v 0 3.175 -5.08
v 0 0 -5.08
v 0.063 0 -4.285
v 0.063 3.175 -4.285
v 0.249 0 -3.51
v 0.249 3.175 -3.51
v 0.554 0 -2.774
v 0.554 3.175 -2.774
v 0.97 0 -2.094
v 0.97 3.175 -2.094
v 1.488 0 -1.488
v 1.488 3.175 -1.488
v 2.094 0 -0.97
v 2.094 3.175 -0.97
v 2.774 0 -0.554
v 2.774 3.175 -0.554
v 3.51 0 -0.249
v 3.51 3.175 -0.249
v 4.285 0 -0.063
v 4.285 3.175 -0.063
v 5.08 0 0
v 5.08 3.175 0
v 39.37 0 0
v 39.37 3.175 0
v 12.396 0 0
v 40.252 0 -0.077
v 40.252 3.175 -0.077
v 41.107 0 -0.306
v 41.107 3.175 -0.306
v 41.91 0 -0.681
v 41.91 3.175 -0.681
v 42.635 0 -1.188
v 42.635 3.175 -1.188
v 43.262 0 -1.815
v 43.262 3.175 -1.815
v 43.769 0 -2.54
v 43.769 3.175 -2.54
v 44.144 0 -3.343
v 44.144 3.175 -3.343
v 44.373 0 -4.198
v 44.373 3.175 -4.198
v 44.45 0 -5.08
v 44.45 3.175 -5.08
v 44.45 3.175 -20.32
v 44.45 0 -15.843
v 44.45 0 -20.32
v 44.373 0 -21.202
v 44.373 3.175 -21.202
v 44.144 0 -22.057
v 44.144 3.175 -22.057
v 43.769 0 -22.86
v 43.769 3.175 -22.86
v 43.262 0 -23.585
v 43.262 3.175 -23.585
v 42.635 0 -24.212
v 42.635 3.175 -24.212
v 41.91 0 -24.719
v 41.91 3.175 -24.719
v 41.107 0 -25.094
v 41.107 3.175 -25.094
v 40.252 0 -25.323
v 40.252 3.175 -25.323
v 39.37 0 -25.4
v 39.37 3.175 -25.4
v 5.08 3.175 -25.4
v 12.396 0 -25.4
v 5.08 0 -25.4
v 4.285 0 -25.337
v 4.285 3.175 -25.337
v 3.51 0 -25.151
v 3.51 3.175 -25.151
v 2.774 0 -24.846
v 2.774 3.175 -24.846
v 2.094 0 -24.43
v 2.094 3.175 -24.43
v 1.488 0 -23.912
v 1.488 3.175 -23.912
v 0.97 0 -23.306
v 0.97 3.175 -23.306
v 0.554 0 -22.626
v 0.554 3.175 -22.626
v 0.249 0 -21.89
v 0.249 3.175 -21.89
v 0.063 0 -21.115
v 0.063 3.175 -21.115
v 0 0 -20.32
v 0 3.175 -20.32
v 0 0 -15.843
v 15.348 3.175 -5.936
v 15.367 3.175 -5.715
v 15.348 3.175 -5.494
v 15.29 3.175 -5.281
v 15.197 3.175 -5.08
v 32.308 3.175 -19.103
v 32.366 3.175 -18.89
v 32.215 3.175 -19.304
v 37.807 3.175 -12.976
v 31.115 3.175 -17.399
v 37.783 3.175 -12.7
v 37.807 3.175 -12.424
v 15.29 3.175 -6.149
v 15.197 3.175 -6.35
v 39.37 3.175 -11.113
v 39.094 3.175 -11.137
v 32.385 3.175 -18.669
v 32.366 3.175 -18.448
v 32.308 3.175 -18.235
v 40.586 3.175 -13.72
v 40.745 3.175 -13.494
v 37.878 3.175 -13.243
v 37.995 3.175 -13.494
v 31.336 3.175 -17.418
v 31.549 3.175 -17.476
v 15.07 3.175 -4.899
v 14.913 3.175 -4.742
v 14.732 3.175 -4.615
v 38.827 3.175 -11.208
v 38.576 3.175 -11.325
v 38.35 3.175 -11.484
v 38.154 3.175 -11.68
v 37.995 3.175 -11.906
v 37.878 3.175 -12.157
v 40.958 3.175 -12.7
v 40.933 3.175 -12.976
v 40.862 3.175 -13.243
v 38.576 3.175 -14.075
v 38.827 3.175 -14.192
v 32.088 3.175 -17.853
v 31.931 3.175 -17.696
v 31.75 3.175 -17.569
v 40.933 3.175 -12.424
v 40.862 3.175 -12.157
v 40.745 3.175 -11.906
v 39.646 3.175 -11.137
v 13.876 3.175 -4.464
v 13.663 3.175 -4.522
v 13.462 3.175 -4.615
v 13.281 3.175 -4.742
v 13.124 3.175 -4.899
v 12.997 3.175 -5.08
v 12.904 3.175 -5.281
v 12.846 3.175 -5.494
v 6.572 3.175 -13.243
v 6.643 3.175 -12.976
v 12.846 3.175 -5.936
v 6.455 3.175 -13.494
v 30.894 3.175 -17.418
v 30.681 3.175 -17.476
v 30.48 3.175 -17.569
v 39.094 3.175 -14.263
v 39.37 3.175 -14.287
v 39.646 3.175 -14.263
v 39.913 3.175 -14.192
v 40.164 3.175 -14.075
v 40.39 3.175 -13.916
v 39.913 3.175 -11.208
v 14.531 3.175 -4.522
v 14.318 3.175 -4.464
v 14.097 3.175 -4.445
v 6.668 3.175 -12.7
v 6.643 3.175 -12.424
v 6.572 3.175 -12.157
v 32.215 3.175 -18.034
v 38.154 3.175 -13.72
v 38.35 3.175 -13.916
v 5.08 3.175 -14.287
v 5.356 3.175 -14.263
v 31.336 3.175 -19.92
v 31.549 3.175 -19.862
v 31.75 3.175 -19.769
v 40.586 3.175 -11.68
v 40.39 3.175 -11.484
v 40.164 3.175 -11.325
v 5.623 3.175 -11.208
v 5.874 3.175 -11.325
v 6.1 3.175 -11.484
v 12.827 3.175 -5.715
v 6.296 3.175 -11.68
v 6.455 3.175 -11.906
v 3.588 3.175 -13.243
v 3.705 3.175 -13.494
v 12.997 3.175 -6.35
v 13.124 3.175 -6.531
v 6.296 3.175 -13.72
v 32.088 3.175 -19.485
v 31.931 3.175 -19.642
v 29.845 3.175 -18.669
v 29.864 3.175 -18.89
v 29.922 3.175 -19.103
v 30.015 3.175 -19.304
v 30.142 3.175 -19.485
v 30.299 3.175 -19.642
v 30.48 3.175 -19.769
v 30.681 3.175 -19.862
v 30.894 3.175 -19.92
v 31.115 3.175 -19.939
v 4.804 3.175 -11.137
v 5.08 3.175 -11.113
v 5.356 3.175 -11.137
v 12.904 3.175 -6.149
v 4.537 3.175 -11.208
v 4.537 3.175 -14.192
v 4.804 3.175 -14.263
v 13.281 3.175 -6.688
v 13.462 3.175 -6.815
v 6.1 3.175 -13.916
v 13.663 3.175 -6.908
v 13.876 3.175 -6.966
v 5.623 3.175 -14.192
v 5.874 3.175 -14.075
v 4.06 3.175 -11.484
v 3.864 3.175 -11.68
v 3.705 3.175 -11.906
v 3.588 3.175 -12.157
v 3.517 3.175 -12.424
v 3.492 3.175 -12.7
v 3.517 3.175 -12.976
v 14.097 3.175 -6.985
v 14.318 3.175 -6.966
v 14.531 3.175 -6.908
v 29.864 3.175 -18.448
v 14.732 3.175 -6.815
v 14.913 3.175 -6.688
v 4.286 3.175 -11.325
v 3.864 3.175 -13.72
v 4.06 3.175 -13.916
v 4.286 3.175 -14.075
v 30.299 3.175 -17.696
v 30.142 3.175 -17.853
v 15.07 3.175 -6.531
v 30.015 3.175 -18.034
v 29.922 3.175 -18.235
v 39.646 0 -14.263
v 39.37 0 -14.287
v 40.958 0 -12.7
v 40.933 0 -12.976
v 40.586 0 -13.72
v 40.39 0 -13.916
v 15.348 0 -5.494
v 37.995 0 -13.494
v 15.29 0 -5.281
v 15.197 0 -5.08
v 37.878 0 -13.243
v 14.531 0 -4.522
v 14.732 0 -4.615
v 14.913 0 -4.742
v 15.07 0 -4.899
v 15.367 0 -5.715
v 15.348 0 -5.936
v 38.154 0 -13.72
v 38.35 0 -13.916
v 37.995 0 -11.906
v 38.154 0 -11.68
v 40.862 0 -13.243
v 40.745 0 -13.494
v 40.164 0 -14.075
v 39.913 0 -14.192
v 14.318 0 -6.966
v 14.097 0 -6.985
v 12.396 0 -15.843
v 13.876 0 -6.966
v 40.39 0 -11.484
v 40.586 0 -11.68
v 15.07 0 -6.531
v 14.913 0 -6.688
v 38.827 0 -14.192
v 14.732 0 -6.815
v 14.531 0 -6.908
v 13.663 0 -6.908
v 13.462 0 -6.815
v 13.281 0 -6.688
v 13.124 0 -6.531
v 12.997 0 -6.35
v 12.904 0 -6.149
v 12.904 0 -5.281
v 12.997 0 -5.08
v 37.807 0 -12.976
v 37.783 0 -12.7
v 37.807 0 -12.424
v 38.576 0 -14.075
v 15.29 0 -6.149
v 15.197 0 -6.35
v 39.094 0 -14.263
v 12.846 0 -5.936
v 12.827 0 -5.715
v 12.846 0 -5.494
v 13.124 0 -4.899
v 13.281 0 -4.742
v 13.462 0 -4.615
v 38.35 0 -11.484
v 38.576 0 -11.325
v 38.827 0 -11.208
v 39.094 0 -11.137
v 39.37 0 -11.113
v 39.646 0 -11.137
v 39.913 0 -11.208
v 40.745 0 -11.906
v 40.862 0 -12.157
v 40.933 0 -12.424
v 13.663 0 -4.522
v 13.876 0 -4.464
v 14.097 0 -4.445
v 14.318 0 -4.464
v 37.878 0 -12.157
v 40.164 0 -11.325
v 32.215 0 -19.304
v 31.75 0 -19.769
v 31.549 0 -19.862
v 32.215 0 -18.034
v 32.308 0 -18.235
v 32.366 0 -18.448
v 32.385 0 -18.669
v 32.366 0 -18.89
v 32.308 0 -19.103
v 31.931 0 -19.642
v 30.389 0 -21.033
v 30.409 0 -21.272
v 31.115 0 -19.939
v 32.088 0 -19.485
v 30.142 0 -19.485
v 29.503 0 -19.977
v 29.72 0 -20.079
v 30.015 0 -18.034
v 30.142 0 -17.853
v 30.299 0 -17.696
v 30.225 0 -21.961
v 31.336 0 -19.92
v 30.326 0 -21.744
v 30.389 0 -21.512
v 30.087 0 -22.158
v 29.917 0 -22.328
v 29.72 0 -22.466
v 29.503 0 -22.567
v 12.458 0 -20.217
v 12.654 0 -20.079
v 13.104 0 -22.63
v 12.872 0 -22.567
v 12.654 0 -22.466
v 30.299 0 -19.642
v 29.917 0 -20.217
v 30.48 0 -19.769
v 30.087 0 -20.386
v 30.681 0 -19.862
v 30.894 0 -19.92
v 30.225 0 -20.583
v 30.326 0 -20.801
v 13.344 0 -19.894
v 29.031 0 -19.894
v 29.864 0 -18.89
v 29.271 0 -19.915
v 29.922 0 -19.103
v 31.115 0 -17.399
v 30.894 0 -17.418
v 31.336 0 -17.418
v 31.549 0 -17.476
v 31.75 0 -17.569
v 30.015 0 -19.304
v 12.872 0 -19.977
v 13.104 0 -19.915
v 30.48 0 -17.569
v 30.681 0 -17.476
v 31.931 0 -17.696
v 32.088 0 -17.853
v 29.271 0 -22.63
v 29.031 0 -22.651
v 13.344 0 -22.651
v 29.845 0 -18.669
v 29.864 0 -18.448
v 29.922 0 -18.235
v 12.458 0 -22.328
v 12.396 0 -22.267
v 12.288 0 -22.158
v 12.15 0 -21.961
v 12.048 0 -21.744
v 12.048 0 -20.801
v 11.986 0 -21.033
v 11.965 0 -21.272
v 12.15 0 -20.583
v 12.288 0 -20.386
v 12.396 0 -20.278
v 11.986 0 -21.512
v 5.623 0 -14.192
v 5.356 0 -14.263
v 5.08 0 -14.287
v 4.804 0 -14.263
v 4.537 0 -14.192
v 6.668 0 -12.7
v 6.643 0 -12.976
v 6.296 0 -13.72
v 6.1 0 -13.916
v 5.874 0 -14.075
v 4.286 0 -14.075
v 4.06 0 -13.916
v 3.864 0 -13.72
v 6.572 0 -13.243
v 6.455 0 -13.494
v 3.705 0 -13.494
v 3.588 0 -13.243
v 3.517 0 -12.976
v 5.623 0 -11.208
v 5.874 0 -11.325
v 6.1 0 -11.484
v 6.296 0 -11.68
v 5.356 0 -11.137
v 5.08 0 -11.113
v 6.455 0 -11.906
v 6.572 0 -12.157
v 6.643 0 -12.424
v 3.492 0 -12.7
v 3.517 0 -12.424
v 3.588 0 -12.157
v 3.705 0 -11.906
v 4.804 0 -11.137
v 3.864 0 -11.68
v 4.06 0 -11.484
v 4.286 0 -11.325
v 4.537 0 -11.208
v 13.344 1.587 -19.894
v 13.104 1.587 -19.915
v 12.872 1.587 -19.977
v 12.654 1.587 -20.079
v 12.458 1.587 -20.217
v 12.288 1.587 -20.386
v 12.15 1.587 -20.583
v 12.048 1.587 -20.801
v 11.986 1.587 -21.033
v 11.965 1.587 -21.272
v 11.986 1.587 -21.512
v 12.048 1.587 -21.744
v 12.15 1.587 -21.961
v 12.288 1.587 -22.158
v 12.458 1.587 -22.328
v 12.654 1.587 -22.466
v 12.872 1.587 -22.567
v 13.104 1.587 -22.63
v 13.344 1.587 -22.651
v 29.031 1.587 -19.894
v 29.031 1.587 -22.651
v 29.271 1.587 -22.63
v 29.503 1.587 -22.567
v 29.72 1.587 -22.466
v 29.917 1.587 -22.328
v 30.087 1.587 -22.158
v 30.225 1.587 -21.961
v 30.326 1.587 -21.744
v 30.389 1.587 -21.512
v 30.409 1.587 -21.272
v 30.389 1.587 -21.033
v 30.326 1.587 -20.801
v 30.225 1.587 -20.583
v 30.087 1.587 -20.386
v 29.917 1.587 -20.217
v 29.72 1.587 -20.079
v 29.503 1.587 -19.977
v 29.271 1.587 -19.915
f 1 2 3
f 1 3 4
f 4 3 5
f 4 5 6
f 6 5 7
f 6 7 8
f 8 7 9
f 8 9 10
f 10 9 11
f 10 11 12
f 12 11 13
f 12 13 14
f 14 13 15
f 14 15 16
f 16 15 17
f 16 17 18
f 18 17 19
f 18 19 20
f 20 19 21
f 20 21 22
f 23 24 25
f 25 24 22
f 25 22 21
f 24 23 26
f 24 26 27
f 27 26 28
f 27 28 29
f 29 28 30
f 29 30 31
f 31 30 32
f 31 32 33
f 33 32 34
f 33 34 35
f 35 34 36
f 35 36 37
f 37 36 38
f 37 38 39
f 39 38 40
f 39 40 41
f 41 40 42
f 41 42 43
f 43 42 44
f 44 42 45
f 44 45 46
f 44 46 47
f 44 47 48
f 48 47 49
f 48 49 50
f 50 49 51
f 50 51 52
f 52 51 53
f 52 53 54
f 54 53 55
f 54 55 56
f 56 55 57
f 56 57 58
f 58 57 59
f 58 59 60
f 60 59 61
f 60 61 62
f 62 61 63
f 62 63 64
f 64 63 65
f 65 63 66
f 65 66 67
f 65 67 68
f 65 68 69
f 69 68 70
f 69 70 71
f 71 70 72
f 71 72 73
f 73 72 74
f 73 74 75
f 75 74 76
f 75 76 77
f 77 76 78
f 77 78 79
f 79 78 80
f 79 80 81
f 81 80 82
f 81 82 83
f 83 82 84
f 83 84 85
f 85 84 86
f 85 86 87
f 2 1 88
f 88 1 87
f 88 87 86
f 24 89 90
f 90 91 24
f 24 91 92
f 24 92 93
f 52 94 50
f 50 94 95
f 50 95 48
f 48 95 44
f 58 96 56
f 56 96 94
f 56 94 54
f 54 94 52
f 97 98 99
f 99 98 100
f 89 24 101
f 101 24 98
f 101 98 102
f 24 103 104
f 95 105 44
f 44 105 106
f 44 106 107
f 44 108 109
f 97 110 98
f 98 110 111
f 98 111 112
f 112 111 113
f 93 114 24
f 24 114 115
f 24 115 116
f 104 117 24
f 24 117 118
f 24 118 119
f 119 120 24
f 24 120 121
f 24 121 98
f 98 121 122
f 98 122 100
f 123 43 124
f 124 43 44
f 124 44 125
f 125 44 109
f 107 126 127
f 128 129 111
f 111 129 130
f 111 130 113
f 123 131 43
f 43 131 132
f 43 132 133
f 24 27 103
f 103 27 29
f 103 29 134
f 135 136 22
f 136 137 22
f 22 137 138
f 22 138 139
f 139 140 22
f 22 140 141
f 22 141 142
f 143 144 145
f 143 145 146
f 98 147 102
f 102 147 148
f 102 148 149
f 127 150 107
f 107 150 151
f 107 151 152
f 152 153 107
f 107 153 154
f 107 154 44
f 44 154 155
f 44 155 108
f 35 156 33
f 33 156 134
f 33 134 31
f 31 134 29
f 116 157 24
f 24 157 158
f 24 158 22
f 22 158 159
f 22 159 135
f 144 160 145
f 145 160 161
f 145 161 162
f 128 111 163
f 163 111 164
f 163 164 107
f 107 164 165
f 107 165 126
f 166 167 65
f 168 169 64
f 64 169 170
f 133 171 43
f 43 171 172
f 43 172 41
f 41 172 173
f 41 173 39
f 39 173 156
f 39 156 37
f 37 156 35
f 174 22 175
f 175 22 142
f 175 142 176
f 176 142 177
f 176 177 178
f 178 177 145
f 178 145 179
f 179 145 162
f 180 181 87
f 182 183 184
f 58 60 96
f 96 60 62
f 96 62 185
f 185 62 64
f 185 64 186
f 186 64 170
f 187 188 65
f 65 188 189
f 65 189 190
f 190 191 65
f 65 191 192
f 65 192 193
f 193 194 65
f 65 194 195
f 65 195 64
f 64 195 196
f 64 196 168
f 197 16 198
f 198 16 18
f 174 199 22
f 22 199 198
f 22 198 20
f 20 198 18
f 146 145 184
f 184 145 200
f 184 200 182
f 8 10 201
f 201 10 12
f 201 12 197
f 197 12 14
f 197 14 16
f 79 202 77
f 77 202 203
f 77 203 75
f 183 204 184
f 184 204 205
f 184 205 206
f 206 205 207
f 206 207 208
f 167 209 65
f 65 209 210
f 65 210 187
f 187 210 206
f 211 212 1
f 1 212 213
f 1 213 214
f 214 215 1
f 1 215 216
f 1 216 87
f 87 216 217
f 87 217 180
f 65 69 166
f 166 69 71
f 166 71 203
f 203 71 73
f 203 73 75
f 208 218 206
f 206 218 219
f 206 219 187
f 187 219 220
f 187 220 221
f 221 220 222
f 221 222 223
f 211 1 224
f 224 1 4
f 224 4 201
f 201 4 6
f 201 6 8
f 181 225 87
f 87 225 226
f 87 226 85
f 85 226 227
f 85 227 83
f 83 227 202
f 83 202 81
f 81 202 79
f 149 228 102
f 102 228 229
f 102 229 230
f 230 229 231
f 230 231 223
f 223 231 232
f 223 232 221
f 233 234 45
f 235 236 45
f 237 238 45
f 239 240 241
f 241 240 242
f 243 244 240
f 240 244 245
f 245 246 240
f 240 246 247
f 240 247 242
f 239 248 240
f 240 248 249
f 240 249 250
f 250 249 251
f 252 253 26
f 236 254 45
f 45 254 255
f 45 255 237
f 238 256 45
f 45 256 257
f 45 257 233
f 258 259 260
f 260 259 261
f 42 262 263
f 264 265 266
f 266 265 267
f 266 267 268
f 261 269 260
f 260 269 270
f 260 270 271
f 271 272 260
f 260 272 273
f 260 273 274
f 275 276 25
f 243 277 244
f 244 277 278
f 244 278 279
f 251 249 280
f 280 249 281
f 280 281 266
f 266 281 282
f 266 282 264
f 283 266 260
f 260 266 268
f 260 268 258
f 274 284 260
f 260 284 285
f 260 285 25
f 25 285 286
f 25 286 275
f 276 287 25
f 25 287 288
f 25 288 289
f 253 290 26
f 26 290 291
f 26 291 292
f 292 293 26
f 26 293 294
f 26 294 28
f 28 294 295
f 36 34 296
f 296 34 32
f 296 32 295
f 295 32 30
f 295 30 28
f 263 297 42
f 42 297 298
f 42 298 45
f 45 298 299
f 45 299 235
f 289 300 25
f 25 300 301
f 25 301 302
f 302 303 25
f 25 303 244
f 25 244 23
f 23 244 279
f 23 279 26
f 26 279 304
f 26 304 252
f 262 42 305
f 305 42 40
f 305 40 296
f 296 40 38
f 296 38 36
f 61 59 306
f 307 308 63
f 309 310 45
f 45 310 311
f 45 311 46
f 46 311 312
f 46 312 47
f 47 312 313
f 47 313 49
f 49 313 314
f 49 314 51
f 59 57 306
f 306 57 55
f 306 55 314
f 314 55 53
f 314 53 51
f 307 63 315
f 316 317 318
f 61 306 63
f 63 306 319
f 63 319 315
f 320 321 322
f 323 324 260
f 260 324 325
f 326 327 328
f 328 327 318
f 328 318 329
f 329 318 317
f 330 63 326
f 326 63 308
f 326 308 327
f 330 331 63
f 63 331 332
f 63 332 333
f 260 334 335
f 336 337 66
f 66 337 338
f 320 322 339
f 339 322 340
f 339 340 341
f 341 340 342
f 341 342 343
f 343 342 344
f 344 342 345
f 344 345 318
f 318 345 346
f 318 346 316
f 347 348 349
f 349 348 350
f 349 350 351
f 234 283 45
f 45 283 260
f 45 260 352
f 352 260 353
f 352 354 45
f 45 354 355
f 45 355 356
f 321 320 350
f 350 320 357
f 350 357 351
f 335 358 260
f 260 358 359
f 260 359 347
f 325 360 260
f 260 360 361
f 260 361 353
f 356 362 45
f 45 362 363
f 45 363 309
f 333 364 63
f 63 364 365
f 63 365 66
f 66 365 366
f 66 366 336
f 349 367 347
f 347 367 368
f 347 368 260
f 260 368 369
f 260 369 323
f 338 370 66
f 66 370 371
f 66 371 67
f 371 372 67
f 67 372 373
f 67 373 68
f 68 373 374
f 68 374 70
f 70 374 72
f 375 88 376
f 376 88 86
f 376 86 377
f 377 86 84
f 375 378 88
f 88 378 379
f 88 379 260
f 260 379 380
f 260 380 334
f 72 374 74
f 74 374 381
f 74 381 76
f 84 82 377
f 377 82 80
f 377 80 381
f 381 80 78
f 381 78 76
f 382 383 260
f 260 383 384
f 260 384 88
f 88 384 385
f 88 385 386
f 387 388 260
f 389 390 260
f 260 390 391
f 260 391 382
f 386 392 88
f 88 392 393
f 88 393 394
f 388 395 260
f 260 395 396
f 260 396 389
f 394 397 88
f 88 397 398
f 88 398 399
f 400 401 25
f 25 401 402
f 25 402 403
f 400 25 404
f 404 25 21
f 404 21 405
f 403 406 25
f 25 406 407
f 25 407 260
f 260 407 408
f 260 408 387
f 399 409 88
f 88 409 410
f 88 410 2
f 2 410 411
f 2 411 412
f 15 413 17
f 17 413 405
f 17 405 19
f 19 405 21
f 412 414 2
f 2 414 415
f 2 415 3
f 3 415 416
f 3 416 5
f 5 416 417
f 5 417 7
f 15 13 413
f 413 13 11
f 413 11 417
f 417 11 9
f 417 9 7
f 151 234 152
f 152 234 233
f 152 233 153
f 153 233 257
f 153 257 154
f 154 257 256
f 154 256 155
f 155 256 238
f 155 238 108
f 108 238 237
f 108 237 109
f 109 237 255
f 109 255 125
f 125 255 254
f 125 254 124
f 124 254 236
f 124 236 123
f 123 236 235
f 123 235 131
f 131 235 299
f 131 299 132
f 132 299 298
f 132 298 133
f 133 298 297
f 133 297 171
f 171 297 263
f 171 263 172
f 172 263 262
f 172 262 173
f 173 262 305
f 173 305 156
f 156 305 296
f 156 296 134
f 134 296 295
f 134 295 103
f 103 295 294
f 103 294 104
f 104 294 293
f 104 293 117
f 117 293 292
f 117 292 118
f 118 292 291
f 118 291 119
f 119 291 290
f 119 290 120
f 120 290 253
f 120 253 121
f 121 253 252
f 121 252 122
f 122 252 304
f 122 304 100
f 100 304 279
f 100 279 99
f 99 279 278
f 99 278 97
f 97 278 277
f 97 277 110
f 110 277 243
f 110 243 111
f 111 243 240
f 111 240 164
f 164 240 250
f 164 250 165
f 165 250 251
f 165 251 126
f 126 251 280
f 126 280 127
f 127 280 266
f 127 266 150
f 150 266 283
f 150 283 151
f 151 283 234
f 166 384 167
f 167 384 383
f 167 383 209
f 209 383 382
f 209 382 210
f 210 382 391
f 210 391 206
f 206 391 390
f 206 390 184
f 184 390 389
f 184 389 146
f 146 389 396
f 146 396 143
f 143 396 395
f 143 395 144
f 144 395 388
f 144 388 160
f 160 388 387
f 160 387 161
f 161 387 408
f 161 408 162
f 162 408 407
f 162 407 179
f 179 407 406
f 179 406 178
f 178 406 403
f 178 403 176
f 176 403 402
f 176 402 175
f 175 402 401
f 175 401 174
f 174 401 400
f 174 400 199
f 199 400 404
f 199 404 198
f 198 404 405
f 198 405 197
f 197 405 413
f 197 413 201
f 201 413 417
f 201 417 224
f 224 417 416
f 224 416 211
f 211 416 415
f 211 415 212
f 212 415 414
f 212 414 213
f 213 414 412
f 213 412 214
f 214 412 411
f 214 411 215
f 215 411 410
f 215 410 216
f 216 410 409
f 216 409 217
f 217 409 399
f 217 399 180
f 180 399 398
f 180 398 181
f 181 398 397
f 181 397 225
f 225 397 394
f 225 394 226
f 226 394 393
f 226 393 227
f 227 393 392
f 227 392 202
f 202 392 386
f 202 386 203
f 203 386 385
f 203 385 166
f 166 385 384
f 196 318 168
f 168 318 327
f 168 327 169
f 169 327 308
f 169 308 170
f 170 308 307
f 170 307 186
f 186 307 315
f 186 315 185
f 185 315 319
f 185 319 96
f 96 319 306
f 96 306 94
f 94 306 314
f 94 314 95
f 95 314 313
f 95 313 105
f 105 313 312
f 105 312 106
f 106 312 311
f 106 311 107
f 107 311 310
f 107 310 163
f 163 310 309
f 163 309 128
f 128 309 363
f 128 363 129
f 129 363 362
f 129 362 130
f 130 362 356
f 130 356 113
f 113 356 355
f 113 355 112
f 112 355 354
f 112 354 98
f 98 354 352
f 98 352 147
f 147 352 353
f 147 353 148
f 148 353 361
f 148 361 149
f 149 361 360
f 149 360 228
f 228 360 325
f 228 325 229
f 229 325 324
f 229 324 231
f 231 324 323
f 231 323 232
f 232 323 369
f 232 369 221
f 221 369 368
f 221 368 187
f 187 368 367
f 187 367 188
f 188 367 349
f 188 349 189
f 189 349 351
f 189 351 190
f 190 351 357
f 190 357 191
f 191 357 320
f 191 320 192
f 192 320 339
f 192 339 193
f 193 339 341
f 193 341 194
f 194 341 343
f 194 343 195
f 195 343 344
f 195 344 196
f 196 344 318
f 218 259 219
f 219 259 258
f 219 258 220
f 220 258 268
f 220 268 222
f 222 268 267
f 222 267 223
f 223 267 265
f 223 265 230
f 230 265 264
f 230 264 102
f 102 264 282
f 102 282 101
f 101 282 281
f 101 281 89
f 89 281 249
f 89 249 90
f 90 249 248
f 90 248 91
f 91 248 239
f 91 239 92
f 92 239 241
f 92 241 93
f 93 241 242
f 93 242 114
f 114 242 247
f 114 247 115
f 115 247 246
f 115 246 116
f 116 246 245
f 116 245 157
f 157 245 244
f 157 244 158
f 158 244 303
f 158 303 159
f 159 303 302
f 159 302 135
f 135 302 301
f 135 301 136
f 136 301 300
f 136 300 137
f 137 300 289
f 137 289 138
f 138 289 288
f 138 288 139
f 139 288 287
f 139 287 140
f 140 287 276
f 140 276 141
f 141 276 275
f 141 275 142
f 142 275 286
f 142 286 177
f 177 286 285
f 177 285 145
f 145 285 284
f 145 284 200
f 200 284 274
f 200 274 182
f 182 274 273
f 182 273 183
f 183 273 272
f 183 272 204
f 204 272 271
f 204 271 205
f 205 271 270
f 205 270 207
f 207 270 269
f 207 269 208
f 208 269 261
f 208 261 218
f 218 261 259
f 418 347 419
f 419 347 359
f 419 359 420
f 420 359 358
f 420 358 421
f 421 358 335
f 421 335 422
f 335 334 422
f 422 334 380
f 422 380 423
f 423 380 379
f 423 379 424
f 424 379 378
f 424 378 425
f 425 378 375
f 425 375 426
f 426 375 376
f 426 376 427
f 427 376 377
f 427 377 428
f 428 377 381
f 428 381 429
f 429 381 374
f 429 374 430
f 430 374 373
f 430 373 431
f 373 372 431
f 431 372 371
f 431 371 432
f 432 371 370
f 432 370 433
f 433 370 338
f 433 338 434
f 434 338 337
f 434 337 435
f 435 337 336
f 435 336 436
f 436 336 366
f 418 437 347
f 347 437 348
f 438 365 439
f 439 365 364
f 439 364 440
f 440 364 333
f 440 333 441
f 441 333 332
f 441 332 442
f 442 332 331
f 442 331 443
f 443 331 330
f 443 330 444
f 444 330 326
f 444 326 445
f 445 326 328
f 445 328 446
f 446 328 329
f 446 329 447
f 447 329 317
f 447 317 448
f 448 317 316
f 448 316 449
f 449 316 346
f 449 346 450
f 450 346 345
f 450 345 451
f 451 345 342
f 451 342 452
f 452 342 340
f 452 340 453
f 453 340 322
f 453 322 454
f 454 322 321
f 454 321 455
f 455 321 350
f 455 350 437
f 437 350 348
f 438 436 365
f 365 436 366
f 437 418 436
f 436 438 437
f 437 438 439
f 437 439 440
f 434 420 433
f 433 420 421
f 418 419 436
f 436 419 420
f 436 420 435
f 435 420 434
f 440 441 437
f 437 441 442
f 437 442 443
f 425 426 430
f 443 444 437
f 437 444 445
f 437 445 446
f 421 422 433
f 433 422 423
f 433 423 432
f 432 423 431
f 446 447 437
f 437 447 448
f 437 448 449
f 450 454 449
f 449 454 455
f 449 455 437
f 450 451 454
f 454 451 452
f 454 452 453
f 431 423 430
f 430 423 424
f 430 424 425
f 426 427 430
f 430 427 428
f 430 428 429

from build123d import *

# Parameters (mm, degrees)
BOSS_EXTRUDE1_DEPTH = 3.175
CUT_EXTRUDE1_REACH  = 5.175
SKETCH2_R           = 1.5875
CUT_EXTRUDE2_REACH  = 5.175
SKETCH3_R           = 1.27
CUT_EXTRUDE3_DEPTH  = 1.5875


with BuildPart() as part:
    # Sketch1 → Boss-Extrude1 (new body)
    with BuildSketch(Plane(origin=(0, 0, 0), x_dir=(1, 0, 0), z_dir=(0, 1, 0))):
        with BuildLine():
            Line((5.08, 0), (39.37, 0))
            ThreePointArc((39.37, 0), (42.962102448, 1.487897552), (44.45, 5.08))
            Line((44.45, 5.08), (44.45, 20.32))
            ThreePointArc((44.45, 20.32), (42.962102448, 23.912102448), (39.37, 25.4))
            Line((39.37, 25.4), (5.08, 25.4))
            ThreePointArc((5.08, 25.4), (1.487897552, 23.912102448), (0, 20.32))
            Line((0, 20.32), (0, 5.08))
            ThreePointArc((0, 5.08), (1.487897552, 1.487897552), (5.08, 0))
        make_face()
    extrude(amount=BOSS_EXTRUDE1_DEPTH)

    # Sketch2 → Cut-Extrude1 (cut, up to next)
    with BuildSketch(Plane.XZ, mode=Mode.PRIVATE) as cut_extrude1_sk1:
        with Locations((5.08, -12.7)):
            Circle(SKETCH2_R)
    cut_extrude1_tool1 = extrude(cut_extrude1_sk1.sketch, amount=-CUT_EXTRUDE1_REACH, mode=Mode.PRIVATE) & part.part
    add(cut_extrude1_tool1.solids().sort_by_distance((5.08, 0, -12.7))[0], mode=Mode.SUBTRACT)
    # Sketch2 → Cut-Extrude1 (cut, up to next)
    with BuildSketch(Plane.XZ, mode=Mode.PRIVATE) as cut_extrude1_sk2:
        with Locations((39.37, -12.7)):
            Circle(SKETCH2_R)
    cut_extrude1_tool2 = extrude(cut_extrude1_sk2.sketch, amount=-CUT_EXTRUDE1_REACH, mode=Mode.PRIVATE) & part.part
    add(cut_extrude1_tool2.solids().sort_by_distance((39.37, 0, -12.7))[0], mode=Mode.SUBTRACT)

    # Sketch3 → Cut-Extrude2 (cut, up to next)
    with BuildSketch(Plane.XZ, mode=Mode.PRIVATE) as cut_extrude2_sk1:
        with Locations((14.097, -5.715)):
            Circle(SKETCH3_R)
    cut_extrude2_tool1 = extrude(cut_extrude2_sk1.sketch, amount=-CUT_EXTRUDE2_REACH, mode=Mode.PRIVATE) & part.part
    add(cut_extrude2_tool1.solids().sort_by_distance((14.097, 0, -5.715))[0], mode=Mode.SUBTRACT)
    # Sketch3 → Cut-Extrude2 (cut, up to next)
    with BuildSketch(Plane.XZ, mode=Mode.PRIVATE) as cut_extrude2_sk2:
        with Locations((31.115, -18.669)):
            Circle(SKETCH3_R)
    cut_extrude2_tool2 = extrude(cut_extrude2_sk2.sketch, amount=-CUT_EXTRUDE2_REACH, mode=Mode.PRIVATE) & part.part
    add(cut_extrude2_tool2.solids().sort_by_distance((31.115, 0, -18.669))[0], mode=Mode.SUBTRACT)

    # Sketch4 → Cut-Extrude3 (cut)
    with BuildSketch(Plane.XZ):
        with BuildLine():
            Line((13.34350835, -19.894123354), (29.031244989, -19.894123354))
            ThreePointArc((29.031244989, -19.894123354), (30.409467748, -21.272346113), (29.031244989, -22.650568872))
            Line((29.031244989, -22.650568872), (13.34350835, -22.650568872))
            ThreePointArc((13.34350835, -22.650568872), (11.965285591, -21.272346113), (13.34350835, -19.894123354))
        make_face()
    extrude(amount=-CUT_EXTRUDE3_DEPTH, mode=Mode.SUBTRACT)


solid = part.part
